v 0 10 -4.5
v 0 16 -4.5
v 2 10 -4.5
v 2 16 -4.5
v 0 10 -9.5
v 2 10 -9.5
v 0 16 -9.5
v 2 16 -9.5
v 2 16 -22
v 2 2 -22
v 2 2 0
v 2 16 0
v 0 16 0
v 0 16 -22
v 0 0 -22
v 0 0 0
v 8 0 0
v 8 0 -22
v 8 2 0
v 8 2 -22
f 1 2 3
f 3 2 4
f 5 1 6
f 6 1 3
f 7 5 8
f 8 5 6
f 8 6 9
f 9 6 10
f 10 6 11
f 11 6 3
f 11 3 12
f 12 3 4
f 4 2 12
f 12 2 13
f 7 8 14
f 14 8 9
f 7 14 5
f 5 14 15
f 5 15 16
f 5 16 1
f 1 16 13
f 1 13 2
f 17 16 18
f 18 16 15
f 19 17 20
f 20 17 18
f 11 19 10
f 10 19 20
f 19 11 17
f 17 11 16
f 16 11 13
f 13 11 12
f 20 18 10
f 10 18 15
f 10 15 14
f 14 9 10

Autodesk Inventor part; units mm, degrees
ref_plane "YZ Plane" through (0, 0, 0) normal (1, 0, 0) x (0, 1, 0)
ref_plane "XZ Plane" through (0, 0, 0) normal (0, 1, 0) x (-1, 0, 0)
ref_plane "XY Plane" through (0, 0, 0) normal (0, 0, 1) x (1, 0, 0)
sketch "Sketch1" plane through (0, 0, 0) normal (0, 0, 1) x (1, 0, 0)
  line L0 (0, 0) -> (2, 0)
  line L1 (2, 0) -> (2, 16)
  line L2 (2, 16) -> (0, 16)
  line L3 (0, 16) -> (0, 0)
  line L4 (2, 2) -> (8, 2)
  line L5 (8, 2) -> (8, 0)
  line L6 (8, 0) -> (2, 0)
  line L7 (2, 0) -> (2, 2)
  dimension "d0" = 2
  dimension "d1" = 16
  dimension "d2" = 6
extrude "Extrusion1" add sketch "Sketch1" against normal blind 22
sketch "Sketch3" plane through (2, 2, 0) normal (1, 0, 0) x (0, 0, -1)
  line L0 (9.5, 14) -> (4.5, 14)
  line L1 (4.5, 14) -> (4.5, 8)
  line L2 (4.5, 8) -> (9.5, 8)
  line L3 (9.5, 8) -> (9.5, 14)
  point P0 (0, -2)
  dimension "d9" = 5
  dimension "d10" = 6
extrude "Extrusion3" cut sketch "Sketch3" against normal blind 10
properties part number "housing_mate_v05"
